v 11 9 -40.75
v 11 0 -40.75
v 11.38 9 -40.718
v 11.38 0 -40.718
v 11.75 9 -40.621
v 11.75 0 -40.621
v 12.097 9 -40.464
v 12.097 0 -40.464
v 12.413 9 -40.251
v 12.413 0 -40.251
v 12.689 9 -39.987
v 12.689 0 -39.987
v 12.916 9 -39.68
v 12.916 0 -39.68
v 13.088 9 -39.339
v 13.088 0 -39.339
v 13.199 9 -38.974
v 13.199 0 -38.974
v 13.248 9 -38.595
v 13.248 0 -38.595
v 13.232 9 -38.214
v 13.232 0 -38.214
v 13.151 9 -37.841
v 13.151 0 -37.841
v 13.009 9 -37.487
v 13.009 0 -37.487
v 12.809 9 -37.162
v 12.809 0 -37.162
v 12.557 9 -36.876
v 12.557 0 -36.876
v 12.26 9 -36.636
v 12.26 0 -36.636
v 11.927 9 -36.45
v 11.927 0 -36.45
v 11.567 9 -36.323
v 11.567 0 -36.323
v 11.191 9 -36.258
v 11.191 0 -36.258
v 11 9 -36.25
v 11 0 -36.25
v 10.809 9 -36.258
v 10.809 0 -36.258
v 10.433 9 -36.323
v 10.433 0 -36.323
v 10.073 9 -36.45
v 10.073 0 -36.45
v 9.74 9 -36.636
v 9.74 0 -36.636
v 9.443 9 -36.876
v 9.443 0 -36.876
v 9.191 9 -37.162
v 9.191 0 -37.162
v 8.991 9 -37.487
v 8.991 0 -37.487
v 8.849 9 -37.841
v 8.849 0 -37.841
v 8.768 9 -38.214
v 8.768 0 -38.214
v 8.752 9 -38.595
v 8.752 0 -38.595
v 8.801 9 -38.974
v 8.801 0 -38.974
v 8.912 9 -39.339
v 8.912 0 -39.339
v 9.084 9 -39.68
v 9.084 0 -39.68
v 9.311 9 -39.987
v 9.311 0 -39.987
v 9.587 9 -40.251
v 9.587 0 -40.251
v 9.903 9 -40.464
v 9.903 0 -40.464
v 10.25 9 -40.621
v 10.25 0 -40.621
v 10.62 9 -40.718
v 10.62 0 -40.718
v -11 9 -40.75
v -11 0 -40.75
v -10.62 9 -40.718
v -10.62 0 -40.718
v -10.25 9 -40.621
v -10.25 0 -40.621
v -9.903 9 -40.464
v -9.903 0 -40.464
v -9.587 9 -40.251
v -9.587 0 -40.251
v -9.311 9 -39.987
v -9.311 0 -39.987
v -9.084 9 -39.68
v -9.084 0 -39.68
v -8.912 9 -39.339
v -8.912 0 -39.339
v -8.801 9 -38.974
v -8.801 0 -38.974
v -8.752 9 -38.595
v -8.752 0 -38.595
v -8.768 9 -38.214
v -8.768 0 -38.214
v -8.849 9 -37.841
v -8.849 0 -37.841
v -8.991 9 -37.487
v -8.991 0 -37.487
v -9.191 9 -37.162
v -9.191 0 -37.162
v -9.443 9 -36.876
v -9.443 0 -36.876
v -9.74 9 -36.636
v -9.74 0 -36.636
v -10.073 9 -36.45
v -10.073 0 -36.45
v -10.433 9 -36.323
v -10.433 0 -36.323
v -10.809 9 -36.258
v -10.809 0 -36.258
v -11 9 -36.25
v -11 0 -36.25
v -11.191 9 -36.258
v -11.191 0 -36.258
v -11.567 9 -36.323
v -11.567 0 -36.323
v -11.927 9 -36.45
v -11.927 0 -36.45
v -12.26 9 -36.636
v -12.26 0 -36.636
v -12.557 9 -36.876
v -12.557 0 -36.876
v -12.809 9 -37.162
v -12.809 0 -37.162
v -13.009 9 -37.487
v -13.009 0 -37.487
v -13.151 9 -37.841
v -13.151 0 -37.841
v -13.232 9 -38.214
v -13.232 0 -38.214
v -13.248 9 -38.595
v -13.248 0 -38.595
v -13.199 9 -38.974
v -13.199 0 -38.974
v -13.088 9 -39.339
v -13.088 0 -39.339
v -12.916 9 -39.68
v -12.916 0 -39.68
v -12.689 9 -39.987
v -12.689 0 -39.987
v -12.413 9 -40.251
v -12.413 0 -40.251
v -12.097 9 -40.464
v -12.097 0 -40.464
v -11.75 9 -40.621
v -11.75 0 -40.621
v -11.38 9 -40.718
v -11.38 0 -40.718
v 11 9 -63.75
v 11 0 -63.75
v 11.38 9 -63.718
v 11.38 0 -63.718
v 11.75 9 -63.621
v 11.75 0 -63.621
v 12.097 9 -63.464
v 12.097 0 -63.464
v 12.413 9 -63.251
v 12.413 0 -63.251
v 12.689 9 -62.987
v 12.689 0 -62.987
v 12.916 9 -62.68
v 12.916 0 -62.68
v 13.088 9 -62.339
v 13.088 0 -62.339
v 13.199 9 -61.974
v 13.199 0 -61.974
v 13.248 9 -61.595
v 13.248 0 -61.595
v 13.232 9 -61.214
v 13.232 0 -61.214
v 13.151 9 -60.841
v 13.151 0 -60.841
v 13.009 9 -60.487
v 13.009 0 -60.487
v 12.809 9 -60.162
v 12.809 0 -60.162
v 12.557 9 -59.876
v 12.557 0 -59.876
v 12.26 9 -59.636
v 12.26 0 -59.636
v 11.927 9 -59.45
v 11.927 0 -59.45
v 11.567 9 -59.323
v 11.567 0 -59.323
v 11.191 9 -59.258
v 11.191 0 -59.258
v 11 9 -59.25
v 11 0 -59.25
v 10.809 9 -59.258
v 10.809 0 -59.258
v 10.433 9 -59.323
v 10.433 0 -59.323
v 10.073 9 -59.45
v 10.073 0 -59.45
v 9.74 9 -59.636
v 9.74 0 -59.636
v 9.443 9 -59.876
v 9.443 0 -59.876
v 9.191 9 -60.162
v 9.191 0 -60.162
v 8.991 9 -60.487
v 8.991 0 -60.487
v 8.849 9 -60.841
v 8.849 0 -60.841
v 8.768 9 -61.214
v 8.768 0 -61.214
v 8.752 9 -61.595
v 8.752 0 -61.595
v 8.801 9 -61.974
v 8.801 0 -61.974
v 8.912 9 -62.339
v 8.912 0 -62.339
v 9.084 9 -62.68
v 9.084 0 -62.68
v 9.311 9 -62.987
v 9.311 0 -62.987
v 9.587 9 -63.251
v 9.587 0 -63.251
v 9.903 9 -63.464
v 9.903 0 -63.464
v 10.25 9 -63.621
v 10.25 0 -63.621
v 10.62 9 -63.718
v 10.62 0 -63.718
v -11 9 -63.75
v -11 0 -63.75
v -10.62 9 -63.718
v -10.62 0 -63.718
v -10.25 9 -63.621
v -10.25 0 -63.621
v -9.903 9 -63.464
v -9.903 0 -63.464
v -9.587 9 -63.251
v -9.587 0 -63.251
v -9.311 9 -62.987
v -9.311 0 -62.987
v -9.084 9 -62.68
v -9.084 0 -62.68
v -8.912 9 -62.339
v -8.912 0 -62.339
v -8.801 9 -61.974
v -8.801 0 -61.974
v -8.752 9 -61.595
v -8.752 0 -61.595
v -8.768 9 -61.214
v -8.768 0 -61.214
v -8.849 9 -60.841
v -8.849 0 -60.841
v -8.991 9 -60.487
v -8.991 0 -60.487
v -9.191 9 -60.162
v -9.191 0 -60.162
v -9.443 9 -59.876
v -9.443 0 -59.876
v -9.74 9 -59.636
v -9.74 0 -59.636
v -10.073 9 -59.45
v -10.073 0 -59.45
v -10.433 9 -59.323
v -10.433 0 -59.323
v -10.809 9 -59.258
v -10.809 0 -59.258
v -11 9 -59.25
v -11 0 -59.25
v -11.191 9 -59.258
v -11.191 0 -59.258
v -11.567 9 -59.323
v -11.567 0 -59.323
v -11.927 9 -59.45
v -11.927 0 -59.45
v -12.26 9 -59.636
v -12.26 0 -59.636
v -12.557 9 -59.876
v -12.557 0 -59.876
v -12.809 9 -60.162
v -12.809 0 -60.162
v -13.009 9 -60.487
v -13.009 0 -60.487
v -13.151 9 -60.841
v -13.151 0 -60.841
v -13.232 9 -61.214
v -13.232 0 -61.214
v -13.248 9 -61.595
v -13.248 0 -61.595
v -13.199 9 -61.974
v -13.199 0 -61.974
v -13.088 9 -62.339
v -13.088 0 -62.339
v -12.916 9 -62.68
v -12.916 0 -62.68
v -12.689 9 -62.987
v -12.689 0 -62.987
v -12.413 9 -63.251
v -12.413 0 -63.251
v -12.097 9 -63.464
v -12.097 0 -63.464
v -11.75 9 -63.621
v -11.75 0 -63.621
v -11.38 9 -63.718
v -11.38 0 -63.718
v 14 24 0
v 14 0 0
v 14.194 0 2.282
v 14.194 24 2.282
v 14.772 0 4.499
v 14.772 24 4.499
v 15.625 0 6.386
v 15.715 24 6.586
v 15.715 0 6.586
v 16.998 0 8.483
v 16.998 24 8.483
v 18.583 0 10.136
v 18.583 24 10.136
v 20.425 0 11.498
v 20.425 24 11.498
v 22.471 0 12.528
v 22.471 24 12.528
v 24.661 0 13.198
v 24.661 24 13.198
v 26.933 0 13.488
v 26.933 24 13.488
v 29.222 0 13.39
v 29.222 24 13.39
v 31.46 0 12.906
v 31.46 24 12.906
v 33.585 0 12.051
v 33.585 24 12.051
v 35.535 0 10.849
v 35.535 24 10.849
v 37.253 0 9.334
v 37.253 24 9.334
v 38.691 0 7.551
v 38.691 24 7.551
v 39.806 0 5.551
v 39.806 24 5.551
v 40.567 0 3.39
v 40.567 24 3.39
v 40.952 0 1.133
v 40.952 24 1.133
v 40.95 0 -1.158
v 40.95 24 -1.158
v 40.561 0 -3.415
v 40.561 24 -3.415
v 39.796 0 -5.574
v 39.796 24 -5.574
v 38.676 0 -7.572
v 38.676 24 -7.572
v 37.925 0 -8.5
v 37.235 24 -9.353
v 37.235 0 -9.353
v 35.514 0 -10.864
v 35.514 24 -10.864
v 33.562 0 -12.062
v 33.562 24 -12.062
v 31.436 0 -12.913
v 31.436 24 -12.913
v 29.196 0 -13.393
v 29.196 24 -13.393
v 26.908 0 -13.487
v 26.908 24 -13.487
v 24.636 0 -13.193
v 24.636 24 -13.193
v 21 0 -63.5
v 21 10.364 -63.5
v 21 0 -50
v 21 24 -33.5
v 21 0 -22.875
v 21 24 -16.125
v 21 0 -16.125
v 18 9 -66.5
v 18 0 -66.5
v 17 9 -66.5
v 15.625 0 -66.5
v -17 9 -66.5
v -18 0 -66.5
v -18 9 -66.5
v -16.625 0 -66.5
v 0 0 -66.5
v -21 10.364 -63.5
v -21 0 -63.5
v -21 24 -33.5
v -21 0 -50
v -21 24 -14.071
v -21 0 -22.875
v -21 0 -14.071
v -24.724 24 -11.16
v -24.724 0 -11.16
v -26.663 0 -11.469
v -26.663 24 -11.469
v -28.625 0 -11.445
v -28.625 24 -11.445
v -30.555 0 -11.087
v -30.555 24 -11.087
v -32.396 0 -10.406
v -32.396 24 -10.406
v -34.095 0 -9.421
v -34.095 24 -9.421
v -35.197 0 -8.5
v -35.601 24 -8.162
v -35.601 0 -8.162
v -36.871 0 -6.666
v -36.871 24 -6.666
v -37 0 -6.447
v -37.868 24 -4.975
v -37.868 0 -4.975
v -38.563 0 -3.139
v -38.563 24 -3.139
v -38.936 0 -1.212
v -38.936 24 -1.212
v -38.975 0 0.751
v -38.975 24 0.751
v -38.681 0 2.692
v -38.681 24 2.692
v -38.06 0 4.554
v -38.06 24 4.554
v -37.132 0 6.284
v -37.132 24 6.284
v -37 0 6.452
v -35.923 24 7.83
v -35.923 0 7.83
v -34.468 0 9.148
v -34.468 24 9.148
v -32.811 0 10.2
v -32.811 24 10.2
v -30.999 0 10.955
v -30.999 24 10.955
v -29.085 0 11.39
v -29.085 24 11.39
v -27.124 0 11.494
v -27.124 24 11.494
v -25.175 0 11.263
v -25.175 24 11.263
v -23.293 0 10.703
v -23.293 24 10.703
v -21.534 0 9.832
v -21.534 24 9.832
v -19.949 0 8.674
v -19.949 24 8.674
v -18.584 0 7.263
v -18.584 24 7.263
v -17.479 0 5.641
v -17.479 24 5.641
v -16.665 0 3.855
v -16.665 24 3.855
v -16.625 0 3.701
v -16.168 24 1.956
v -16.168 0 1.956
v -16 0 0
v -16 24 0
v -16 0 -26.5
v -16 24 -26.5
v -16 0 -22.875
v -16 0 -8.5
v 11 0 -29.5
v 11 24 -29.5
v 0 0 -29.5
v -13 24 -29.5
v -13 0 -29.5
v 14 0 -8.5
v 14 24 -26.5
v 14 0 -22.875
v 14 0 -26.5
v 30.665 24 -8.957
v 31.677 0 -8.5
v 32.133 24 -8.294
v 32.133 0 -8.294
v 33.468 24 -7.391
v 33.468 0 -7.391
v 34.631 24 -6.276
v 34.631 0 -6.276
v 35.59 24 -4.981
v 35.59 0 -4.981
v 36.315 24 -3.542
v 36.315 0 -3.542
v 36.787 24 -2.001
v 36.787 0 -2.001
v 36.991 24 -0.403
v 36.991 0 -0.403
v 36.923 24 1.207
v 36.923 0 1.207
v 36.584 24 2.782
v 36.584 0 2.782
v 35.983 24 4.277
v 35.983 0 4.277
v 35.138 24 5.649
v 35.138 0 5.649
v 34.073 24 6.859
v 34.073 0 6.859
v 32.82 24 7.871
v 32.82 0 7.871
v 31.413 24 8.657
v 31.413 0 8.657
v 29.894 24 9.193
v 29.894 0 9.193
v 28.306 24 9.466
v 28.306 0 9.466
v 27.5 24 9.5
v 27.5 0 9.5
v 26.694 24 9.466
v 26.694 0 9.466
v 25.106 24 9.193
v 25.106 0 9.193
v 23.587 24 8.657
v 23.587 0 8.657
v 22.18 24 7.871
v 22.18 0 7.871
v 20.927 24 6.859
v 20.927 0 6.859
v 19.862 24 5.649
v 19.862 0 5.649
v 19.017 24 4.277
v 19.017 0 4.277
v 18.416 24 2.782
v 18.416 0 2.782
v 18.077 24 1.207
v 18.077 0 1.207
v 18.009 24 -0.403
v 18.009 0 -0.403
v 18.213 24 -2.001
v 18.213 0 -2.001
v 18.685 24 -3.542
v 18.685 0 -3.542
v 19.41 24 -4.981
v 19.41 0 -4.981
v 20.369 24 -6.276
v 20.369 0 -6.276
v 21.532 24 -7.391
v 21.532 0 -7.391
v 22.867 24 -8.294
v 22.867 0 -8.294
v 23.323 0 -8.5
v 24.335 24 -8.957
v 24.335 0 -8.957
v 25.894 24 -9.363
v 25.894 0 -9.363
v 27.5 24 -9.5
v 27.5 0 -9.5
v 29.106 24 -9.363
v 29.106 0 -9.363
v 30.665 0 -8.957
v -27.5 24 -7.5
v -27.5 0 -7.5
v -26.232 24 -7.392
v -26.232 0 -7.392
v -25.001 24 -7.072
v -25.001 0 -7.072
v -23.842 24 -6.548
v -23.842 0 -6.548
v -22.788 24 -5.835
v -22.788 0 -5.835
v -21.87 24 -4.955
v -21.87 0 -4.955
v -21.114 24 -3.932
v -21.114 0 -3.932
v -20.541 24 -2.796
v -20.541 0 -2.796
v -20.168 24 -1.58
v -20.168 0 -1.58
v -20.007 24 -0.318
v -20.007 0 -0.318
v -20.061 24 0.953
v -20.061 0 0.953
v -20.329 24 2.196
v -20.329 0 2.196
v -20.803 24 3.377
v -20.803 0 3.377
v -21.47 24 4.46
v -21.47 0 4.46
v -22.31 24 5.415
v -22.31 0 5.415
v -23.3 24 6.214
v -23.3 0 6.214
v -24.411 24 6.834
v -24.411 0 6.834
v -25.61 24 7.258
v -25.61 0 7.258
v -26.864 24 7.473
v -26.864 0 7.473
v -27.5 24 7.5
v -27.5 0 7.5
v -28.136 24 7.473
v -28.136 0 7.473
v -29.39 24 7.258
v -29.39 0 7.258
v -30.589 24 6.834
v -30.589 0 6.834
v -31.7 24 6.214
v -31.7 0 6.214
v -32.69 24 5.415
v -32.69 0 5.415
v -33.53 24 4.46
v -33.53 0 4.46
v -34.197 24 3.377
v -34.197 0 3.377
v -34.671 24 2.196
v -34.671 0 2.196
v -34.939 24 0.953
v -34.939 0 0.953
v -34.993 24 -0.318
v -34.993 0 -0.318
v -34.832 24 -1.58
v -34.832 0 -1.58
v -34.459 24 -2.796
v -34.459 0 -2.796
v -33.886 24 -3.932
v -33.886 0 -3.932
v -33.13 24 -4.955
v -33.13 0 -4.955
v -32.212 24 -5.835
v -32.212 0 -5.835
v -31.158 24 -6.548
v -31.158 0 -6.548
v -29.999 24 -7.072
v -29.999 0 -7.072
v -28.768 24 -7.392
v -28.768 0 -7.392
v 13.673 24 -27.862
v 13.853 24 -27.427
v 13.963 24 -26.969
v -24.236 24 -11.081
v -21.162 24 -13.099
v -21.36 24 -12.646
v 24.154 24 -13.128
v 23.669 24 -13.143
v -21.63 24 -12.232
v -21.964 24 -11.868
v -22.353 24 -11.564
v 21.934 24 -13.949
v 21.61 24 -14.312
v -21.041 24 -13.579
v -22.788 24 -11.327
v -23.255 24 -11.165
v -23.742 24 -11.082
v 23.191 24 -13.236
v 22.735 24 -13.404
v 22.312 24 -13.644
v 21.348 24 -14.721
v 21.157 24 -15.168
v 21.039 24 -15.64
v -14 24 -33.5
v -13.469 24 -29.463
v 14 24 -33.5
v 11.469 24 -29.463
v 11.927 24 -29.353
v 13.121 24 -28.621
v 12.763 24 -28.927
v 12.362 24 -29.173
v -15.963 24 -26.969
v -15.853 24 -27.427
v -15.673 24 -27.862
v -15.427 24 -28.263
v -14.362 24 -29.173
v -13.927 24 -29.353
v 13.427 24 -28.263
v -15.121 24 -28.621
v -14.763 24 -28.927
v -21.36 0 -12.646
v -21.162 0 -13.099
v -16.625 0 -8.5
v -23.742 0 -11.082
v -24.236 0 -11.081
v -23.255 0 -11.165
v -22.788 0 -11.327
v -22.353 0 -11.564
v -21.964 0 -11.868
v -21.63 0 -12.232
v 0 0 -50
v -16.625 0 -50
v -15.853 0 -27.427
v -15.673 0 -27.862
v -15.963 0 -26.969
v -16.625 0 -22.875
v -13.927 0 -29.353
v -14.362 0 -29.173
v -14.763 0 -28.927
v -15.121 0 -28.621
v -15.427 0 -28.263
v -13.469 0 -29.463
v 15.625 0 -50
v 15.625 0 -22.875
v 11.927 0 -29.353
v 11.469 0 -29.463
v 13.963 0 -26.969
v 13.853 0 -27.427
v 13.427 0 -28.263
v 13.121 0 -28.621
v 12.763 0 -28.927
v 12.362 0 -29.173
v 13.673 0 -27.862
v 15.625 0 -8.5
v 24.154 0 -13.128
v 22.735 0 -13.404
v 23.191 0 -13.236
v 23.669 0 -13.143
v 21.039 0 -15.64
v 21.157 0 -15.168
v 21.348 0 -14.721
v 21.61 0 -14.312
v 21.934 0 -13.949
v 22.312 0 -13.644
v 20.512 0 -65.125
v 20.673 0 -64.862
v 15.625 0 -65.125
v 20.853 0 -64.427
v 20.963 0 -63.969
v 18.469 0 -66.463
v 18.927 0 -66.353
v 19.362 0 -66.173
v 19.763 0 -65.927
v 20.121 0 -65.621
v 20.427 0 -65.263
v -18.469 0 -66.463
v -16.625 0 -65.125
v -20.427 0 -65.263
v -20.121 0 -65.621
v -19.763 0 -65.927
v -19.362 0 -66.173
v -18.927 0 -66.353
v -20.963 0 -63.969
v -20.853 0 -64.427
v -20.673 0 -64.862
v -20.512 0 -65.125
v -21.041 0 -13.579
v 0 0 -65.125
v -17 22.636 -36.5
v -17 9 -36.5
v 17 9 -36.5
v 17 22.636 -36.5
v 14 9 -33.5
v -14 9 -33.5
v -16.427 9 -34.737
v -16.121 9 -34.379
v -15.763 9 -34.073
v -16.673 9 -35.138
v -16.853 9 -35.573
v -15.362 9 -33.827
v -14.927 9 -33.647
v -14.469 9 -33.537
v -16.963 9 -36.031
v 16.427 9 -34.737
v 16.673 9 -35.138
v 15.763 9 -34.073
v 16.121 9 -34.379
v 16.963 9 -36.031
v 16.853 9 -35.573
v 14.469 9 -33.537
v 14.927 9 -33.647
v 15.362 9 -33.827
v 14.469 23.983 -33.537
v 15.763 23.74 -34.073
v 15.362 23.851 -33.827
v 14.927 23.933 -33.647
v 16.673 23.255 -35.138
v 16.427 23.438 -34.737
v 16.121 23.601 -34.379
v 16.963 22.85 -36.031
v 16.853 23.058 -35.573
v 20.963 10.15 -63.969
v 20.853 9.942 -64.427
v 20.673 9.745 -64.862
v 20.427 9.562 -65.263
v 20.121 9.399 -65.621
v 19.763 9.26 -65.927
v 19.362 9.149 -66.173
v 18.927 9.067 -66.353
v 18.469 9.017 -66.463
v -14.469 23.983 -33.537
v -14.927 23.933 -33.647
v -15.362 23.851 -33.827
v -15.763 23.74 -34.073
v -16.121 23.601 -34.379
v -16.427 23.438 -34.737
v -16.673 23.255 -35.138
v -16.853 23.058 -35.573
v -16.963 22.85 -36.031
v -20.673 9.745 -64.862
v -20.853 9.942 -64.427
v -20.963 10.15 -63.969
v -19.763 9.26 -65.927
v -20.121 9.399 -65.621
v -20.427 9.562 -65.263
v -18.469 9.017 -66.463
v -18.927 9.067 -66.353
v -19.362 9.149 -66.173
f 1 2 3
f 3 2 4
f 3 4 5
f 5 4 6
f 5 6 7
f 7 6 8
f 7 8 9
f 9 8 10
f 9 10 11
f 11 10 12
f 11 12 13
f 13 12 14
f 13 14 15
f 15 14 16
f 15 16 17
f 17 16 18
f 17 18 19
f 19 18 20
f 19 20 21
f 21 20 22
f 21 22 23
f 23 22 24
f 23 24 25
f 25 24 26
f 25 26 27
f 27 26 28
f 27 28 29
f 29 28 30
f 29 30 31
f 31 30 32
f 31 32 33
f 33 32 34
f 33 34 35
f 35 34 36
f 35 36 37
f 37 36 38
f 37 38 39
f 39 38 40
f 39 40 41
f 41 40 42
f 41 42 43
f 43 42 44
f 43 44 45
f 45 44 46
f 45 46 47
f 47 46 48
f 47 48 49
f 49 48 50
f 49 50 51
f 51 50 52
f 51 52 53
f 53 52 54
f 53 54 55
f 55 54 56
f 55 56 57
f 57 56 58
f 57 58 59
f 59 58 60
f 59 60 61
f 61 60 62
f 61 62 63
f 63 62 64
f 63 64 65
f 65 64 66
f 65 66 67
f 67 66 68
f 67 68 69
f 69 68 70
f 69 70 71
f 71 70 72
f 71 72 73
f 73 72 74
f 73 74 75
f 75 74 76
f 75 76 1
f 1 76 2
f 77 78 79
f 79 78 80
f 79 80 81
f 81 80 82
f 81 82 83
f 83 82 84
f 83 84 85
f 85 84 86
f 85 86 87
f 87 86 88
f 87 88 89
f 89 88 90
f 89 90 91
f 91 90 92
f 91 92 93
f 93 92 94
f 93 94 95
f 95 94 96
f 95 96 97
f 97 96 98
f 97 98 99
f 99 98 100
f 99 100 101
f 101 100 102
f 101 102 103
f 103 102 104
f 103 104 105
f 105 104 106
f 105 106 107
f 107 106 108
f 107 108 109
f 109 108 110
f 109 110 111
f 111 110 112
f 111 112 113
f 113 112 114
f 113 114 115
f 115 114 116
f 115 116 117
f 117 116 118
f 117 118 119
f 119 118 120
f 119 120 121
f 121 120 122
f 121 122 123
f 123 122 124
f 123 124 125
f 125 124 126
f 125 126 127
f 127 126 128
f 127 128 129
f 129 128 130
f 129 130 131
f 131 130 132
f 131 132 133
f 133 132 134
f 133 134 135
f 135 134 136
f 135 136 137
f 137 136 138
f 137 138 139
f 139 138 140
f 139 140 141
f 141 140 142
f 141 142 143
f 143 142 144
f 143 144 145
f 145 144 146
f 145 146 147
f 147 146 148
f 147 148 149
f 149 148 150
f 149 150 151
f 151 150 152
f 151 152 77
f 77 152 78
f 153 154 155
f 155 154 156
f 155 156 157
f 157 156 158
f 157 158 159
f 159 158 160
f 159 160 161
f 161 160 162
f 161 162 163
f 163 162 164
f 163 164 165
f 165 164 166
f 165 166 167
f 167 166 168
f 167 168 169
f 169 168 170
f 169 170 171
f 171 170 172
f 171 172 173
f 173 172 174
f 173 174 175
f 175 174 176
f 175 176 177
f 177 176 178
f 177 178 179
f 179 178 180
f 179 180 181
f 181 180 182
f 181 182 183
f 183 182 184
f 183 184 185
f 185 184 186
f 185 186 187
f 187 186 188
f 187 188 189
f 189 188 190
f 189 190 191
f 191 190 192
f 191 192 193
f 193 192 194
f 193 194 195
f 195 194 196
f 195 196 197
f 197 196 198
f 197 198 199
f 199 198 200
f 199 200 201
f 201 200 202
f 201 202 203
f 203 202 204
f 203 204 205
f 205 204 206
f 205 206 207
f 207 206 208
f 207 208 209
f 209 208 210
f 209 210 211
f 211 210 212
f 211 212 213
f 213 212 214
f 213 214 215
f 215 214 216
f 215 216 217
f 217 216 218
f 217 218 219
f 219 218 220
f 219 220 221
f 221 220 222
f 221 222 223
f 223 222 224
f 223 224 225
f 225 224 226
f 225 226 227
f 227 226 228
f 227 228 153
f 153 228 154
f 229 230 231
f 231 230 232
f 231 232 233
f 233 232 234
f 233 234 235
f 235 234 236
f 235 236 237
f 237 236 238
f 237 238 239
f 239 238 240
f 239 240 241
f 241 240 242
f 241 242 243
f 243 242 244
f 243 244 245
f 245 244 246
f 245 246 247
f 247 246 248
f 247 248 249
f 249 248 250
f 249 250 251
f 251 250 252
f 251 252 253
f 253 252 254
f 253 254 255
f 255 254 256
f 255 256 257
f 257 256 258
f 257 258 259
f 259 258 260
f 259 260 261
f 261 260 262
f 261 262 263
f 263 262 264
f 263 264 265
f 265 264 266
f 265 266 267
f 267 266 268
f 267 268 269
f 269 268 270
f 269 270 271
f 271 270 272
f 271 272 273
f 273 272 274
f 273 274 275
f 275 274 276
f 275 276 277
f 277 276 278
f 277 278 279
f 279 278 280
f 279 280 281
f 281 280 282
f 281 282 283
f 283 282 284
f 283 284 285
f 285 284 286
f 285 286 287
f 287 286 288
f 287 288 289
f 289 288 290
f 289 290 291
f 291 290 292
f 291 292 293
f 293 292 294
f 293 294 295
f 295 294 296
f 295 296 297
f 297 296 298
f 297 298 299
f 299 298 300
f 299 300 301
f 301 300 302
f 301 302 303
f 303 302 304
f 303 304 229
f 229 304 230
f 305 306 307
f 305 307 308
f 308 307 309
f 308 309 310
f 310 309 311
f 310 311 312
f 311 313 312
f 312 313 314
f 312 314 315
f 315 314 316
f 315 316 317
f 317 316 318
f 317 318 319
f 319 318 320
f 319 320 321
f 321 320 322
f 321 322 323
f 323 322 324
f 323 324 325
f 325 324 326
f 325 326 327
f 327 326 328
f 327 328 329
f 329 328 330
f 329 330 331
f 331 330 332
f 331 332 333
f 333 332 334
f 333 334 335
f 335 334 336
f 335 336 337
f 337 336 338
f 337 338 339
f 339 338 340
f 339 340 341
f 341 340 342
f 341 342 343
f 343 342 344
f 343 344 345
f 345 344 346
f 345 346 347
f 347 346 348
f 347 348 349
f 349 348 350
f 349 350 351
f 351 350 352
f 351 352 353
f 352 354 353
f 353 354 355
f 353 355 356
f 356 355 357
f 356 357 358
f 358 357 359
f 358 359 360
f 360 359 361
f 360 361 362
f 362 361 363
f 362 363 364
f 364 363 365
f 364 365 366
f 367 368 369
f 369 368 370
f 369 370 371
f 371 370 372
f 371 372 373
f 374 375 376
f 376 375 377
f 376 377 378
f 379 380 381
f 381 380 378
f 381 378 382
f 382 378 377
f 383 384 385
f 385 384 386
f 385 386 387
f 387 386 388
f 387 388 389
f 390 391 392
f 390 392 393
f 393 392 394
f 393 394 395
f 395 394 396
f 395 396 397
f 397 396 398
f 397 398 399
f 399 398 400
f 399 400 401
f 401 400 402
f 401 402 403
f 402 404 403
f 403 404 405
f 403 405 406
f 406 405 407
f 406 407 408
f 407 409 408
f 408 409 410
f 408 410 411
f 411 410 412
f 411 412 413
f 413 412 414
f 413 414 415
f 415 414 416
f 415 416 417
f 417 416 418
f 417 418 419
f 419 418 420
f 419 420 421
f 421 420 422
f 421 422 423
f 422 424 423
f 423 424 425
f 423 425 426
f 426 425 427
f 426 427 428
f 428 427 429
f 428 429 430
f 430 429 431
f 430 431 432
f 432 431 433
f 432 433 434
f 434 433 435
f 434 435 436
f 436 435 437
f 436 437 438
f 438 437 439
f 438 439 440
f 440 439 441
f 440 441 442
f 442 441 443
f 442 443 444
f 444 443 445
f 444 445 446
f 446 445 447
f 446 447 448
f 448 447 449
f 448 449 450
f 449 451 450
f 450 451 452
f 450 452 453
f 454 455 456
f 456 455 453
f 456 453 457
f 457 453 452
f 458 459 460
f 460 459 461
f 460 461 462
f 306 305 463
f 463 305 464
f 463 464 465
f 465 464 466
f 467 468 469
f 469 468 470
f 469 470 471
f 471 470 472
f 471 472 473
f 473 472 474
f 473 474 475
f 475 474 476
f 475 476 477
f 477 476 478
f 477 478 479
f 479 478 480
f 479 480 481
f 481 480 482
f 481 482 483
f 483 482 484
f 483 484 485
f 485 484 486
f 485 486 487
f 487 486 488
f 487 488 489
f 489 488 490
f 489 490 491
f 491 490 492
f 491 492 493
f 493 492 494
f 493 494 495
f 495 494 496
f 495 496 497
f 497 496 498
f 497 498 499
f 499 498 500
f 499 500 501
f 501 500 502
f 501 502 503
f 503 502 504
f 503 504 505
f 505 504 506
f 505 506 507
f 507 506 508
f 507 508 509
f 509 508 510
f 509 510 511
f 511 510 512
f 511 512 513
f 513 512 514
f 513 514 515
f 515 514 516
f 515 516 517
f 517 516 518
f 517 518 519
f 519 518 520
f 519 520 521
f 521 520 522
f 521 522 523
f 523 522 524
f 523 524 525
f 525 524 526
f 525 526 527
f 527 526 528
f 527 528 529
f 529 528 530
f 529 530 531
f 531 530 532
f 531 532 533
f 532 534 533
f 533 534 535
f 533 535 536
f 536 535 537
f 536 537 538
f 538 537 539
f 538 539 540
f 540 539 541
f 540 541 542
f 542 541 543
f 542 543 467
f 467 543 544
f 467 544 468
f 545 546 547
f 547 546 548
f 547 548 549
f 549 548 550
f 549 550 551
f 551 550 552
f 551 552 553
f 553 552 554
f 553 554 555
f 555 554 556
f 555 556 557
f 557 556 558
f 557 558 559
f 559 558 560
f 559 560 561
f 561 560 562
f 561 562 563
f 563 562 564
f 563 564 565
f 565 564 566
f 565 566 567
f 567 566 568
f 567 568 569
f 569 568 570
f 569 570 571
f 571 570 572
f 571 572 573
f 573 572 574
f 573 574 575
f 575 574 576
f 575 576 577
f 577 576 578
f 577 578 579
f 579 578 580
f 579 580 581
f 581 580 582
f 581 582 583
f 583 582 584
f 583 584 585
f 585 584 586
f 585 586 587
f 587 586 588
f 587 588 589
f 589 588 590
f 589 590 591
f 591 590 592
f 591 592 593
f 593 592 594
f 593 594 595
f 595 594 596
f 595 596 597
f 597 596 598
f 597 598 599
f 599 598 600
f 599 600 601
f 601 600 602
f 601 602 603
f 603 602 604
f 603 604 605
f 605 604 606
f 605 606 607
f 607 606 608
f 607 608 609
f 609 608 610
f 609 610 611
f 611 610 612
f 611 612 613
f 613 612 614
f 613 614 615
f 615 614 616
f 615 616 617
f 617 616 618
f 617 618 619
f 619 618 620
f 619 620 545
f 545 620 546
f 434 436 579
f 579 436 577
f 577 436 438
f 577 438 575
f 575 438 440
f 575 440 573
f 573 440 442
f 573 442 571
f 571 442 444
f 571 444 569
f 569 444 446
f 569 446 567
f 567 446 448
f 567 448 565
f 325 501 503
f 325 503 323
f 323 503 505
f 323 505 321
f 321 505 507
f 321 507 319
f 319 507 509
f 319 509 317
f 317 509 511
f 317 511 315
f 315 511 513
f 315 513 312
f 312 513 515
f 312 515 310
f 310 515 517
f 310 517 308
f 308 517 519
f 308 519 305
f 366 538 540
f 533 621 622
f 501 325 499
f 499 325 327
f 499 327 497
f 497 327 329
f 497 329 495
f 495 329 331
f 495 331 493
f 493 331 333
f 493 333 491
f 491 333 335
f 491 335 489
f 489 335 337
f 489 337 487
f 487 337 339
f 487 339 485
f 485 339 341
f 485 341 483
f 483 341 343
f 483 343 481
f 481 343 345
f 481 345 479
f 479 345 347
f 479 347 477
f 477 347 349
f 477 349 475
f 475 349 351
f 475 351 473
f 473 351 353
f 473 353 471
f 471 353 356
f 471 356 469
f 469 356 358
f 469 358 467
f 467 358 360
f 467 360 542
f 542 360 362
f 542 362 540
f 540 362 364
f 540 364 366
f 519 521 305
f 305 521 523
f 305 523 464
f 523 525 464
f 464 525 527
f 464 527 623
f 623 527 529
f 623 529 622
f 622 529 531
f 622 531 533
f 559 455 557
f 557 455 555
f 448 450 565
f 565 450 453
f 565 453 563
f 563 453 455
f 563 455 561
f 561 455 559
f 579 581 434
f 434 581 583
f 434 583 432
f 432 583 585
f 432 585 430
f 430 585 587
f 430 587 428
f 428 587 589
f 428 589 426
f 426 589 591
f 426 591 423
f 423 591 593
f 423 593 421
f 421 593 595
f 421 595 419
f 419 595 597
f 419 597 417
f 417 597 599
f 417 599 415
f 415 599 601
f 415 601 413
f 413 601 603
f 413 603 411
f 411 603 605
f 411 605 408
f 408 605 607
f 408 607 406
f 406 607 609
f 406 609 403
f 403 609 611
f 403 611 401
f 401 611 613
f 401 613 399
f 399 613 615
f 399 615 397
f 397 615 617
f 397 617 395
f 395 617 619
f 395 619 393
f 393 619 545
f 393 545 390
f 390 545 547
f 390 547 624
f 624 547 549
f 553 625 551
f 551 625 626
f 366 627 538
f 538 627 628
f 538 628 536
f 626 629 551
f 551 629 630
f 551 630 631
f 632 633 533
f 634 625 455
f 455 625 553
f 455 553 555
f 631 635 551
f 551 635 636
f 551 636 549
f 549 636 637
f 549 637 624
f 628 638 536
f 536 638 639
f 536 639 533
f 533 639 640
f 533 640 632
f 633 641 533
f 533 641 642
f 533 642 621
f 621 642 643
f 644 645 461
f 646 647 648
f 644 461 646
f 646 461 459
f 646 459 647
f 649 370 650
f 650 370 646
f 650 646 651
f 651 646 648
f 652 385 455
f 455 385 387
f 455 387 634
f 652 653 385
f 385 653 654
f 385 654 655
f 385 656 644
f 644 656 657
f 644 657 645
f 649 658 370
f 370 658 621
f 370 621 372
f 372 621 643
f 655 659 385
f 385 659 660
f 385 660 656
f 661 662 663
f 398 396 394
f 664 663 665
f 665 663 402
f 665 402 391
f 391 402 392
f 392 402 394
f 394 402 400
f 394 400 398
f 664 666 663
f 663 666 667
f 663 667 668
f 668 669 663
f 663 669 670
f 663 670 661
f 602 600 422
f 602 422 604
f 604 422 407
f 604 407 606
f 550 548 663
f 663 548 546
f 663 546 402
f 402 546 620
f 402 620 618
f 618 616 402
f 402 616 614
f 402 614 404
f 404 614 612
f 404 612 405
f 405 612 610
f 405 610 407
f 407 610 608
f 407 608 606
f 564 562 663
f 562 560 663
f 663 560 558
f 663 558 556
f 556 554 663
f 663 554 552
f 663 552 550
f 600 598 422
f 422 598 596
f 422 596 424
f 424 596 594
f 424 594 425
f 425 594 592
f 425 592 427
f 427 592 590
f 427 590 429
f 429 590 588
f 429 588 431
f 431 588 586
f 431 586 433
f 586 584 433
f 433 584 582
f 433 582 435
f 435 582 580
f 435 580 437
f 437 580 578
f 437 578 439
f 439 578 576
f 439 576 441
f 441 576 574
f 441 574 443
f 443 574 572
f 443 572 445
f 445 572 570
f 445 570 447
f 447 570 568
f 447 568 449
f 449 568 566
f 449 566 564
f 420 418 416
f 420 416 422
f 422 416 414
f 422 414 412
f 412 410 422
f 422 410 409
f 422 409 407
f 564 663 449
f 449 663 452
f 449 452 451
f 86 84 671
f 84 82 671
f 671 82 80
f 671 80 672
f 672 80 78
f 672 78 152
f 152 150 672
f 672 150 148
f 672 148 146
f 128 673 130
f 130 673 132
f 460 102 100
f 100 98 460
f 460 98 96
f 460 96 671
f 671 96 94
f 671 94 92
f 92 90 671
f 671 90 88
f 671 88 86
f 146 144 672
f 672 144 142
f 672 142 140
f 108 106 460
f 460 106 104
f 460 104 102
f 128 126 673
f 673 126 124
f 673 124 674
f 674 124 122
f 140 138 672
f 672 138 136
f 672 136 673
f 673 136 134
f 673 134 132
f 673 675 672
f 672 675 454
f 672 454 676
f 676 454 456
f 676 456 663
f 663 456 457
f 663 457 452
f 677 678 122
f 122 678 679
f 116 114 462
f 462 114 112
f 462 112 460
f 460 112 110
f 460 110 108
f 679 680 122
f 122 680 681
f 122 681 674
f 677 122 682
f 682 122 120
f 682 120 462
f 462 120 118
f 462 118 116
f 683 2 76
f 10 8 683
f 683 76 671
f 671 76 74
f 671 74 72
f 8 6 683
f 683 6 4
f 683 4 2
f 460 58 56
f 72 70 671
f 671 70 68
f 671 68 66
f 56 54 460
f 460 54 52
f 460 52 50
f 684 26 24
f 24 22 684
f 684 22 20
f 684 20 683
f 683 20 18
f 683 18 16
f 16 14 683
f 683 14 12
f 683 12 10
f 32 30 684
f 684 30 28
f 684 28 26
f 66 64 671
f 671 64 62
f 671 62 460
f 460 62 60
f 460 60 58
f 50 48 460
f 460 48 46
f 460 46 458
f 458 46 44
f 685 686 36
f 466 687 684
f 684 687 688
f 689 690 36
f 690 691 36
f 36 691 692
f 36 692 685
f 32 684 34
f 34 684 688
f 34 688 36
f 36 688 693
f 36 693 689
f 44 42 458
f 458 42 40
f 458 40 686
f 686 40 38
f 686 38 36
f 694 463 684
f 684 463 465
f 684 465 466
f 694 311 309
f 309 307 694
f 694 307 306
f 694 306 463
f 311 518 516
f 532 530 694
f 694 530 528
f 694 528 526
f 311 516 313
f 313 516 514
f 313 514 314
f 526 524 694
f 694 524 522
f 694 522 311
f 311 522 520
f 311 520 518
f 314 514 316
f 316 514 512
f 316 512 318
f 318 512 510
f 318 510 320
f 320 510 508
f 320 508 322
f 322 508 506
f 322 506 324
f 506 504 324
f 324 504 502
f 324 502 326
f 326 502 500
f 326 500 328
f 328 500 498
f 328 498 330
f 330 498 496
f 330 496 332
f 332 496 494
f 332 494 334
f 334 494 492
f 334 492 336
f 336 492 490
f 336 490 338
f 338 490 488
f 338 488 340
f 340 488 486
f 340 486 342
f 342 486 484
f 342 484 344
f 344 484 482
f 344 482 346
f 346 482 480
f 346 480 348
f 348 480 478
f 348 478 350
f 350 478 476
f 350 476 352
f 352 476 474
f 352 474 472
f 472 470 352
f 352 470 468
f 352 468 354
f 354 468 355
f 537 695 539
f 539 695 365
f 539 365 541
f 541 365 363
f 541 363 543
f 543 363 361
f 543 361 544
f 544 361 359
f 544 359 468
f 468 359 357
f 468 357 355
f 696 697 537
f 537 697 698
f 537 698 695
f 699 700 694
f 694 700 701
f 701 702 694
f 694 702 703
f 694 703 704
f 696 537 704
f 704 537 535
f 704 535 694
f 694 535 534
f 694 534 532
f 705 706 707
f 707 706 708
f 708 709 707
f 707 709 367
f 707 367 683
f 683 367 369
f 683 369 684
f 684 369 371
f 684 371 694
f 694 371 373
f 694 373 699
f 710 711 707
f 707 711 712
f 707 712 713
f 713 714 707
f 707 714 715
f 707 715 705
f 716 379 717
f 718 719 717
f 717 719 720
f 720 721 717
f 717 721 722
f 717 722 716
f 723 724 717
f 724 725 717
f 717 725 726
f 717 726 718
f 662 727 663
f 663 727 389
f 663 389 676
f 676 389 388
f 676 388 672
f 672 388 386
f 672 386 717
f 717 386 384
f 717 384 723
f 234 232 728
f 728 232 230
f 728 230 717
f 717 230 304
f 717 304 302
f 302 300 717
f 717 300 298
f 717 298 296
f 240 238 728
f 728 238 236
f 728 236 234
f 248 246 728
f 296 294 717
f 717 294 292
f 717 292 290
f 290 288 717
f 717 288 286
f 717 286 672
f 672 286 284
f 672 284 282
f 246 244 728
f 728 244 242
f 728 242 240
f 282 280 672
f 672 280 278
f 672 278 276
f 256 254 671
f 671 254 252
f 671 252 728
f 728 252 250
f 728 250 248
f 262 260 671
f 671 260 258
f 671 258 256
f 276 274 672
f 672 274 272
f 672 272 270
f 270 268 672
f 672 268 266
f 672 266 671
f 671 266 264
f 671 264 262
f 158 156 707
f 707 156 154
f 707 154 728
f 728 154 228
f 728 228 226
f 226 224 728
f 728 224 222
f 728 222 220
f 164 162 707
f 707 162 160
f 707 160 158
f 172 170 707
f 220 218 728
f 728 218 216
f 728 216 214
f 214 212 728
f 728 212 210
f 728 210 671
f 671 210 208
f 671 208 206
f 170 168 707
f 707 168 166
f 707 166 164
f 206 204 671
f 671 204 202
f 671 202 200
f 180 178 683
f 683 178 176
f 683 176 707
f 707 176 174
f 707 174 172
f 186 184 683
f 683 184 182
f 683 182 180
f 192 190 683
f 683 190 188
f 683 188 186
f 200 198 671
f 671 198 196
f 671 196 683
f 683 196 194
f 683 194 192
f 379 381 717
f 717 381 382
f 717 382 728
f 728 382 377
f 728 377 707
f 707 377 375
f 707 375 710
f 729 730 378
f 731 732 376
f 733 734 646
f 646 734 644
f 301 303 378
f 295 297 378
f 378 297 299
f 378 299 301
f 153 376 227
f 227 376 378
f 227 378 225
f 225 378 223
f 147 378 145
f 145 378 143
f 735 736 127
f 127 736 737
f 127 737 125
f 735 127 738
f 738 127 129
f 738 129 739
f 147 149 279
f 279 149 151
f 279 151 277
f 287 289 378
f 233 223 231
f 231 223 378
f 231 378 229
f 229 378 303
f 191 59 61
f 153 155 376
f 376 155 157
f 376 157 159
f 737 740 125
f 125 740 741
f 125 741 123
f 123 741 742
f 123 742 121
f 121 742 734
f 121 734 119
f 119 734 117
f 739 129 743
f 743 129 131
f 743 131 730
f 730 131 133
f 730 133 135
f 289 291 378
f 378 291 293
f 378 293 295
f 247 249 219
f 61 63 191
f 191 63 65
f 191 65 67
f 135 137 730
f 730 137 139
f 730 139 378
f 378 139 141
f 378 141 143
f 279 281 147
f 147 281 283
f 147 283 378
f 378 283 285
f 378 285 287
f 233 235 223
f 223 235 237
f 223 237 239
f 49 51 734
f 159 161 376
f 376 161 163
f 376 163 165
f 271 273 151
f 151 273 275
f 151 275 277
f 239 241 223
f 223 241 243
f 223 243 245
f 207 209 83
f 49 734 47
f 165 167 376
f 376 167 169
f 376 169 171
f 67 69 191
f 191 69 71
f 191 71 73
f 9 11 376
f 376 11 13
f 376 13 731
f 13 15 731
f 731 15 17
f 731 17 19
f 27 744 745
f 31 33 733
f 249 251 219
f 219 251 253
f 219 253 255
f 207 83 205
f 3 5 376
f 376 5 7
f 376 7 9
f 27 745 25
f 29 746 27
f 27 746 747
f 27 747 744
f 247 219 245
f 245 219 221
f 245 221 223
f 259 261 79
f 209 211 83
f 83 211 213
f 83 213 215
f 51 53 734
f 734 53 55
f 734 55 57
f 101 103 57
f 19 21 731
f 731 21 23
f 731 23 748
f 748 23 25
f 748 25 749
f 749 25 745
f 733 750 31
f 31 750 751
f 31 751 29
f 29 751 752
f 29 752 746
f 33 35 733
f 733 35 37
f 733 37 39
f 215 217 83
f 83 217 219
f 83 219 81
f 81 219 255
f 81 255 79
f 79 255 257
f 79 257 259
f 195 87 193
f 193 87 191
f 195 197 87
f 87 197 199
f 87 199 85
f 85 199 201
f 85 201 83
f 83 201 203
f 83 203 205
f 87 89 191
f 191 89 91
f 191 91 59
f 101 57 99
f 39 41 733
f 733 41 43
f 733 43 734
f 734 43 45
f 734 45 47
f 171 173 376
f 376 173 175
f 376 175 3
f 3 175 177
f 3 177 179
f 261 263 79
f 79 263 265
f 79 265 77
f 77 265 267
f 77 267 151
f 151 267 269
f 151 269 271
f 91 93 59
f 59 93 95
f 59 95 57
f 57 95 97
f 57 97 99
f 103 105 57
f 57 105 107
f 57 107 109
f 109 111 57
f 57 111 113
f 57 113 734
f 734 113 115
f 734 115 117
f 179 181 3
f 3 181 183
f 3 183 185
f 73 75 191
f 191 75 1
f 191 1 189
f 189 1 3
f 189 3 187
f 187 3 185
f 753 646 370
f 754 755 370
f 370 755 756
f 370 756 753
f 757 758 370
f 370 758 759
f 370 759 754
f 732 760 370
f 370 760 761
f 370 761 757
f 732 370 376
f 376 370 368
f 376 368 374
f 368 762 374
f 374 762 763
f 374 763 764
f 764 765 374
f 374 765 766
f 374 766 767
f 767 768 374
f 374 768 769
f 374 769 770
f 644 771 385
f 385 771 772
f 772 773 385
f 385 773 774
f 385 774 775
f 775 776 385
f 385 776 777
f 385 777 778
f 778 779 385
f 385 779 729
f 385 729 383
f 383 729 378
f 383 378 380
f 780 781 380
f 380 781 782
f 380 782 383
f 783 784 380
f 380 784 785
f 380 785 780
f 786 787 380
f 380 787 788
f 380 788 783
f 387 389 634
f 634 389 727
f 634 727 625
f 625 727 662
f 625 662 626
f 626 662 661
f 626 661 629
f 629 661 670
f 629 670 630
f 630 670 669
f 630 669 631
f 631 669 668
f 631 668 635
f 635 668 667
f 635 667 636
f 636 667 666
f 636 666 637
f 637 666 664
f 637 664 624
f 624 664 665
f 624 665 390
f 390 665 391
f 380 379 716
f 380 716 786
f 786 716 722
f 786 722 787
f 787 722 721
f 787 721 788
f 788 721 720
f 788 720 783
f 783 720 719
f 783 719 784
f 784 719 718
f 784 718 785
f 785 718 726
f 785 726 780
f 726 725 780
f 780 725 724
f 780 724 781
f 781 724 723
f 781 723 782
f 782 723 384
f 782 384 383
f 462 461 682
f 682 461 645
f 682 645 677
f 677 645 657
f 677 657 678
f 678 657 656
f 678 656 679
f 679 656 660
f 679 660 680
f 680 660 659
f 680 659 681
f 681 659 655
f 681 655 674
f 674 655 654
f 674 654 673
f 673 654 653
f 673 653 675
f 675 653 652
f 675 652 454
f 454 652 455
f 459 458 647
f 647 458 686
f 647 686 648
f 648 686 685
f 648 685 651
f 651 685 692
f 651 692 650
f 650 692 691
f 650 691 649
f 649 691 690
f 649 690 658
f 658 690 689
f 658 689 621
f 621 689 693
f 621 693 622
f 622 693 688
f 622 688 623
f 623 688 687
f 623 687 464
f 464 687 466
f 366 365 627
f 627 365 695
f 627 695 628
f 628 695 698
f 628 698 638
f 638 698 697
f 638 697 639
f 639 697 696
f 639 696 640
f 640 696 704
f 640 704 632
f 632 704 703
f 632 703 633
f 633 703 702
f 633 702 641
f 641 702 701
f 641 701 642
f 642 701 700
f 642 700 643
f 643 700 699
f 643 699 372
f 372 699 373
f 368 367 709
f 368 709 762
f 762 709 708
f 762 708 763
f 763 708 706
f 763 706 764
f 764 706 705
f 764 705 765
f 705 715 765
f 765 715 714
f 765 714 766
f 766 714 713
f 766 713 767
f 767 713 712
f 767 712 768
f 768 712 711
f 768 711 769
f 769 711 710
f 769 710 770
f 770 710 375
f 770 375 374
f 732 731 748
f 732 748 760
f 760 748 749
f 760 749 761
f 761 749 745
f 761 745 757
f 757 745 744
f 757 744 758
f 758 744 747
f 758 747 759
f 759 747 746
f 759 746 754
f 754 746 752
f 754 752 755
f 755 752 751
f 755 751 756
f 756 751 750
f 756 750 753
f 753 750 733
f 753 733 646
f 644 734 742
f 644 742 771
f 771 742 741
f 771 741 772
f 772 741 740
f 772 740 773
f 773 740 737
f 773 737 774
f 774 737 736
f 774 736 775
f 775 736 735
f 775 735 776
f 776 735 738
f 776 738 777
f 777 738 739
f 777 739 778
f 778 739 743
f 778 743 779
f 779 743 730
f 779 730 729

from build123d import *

# Parameters (mm, degrees)
SKETCH1_R               = 2.25
SKETCH1_R_2             = 9.5
SKETCH1_R_3             = 7.5
BOSS_EXTRUDE1_DEPTH     = 24
SKETCH2_W               = 34
SKETCH2_H               = 33
CUT_EXTRUDE1_DEPTH      = 15
CUT_EXTRUDE2_DEPTH      = 59
CUT_EXTRUDE2_DEPTH_BACK = 23
FILLET1_R               = 3


with BuildPart() as part:
    # Sketch1 → Boss-Extrude1 (new body)
    with BuildSketch(Plane(origin=(0, 0, 0), x_dir=(1, 0, 0), z_dir=(0, 1, 0))):
        with BuildLine():
            Line((21, 11.832159566), (21, 66.5))
            Line((21, 66.5), (-21, 66.5))
            Line((-21, 66.5), (-21, 9.486832981))
            ThreePointArc((-21, 9.486832981), (-37.673494975, -5.361902647), (-16, 0))
            Line((-16, 0), (-16, 29.5))
            Line((-16, 29.5), (14, 29.5))
            Line((14, 29.5), (14, 0))
            ThreePointArc((14, 0), (39.118950039, -6.873863542), (21, 11.832159566))
        make_face()
        with Locations((-11, 38.5)):
            Circle(SKETCH1_R, mode=Mode.SUBTRACT)
        with Locations((-11, 61.5)):
            Circle(SKETCH1_R, mode=Mode.SUBTRACT)
        with Locations((11, 61.5)):
            Circle(SKETCH1_R, mode=Mode.SUBTRACT)
        with Locations((11, 38.5)):
            Circle(SKETCH1_R, mode=Mode.SUBTRACT)
        with Locations((27.5, 0)):
            Circle(SKETCH1_R_2, mode=Mode.SUBTRACT)
        with Locations((-27.5, 0)):
            Circle(SKETCH1_R_3, mode=Mode.SUBTRACT)
    extrude(amount=BOSS_EXTRUDE1_DEPTH)

    # Sketch2 → Cut-Extrude1 (cut)
    with BuildSketch(Plane(origin=(0, 24, 0), x_dir=(1, 0, 0), z_dir=(0, 1, 0))):
        with Locations((0, 50)):
            Rectangle(SKETCH2_W, SKETCH2_H)
    extrude(amount=-CUT_EXTRUDE1_DEPTH, mode=Mode.SUBTRACT)

    # Sketch4 → Cut-Extrude2 (cut, two sides)
    with BuildSketch(Plane(origin=(-17, 0, 0), x_dir=(0, 0, -1), z_dir=(1, 0, 0))) as cut_extrude2_sk:
        Polygon((33.5, 24), (66.5, 9), (66.5, 24), align=None)
    extrude(amount=CUT_EXTRUDE2_DEPTH, mode=Mode.SUBTRACT)
    extrude(cut_extrude2_sk.sketch, amount=-CUT_EXTRUDE2_DEPTH_BACK, mode=Mode.SUBTRACT)

    # Fillet1
    fillet1_edges = [part.edges().sort_by_distance(p)[0] for p in [
        (14, 12, -29.5),
        (-16, 12, -29.5),
        (-21, 12, -9.486832981),
        (21, 12, -11.832159566),
        (-17, 16.5, -33.5),
        (17, 16.5, -33.5),
        (-21, 4.5, -66.5),
        (21, 4.5, -66.5),
    ]]
    fillet(fillet1_edges, radius=FILLET1_R)


solid = part.part
